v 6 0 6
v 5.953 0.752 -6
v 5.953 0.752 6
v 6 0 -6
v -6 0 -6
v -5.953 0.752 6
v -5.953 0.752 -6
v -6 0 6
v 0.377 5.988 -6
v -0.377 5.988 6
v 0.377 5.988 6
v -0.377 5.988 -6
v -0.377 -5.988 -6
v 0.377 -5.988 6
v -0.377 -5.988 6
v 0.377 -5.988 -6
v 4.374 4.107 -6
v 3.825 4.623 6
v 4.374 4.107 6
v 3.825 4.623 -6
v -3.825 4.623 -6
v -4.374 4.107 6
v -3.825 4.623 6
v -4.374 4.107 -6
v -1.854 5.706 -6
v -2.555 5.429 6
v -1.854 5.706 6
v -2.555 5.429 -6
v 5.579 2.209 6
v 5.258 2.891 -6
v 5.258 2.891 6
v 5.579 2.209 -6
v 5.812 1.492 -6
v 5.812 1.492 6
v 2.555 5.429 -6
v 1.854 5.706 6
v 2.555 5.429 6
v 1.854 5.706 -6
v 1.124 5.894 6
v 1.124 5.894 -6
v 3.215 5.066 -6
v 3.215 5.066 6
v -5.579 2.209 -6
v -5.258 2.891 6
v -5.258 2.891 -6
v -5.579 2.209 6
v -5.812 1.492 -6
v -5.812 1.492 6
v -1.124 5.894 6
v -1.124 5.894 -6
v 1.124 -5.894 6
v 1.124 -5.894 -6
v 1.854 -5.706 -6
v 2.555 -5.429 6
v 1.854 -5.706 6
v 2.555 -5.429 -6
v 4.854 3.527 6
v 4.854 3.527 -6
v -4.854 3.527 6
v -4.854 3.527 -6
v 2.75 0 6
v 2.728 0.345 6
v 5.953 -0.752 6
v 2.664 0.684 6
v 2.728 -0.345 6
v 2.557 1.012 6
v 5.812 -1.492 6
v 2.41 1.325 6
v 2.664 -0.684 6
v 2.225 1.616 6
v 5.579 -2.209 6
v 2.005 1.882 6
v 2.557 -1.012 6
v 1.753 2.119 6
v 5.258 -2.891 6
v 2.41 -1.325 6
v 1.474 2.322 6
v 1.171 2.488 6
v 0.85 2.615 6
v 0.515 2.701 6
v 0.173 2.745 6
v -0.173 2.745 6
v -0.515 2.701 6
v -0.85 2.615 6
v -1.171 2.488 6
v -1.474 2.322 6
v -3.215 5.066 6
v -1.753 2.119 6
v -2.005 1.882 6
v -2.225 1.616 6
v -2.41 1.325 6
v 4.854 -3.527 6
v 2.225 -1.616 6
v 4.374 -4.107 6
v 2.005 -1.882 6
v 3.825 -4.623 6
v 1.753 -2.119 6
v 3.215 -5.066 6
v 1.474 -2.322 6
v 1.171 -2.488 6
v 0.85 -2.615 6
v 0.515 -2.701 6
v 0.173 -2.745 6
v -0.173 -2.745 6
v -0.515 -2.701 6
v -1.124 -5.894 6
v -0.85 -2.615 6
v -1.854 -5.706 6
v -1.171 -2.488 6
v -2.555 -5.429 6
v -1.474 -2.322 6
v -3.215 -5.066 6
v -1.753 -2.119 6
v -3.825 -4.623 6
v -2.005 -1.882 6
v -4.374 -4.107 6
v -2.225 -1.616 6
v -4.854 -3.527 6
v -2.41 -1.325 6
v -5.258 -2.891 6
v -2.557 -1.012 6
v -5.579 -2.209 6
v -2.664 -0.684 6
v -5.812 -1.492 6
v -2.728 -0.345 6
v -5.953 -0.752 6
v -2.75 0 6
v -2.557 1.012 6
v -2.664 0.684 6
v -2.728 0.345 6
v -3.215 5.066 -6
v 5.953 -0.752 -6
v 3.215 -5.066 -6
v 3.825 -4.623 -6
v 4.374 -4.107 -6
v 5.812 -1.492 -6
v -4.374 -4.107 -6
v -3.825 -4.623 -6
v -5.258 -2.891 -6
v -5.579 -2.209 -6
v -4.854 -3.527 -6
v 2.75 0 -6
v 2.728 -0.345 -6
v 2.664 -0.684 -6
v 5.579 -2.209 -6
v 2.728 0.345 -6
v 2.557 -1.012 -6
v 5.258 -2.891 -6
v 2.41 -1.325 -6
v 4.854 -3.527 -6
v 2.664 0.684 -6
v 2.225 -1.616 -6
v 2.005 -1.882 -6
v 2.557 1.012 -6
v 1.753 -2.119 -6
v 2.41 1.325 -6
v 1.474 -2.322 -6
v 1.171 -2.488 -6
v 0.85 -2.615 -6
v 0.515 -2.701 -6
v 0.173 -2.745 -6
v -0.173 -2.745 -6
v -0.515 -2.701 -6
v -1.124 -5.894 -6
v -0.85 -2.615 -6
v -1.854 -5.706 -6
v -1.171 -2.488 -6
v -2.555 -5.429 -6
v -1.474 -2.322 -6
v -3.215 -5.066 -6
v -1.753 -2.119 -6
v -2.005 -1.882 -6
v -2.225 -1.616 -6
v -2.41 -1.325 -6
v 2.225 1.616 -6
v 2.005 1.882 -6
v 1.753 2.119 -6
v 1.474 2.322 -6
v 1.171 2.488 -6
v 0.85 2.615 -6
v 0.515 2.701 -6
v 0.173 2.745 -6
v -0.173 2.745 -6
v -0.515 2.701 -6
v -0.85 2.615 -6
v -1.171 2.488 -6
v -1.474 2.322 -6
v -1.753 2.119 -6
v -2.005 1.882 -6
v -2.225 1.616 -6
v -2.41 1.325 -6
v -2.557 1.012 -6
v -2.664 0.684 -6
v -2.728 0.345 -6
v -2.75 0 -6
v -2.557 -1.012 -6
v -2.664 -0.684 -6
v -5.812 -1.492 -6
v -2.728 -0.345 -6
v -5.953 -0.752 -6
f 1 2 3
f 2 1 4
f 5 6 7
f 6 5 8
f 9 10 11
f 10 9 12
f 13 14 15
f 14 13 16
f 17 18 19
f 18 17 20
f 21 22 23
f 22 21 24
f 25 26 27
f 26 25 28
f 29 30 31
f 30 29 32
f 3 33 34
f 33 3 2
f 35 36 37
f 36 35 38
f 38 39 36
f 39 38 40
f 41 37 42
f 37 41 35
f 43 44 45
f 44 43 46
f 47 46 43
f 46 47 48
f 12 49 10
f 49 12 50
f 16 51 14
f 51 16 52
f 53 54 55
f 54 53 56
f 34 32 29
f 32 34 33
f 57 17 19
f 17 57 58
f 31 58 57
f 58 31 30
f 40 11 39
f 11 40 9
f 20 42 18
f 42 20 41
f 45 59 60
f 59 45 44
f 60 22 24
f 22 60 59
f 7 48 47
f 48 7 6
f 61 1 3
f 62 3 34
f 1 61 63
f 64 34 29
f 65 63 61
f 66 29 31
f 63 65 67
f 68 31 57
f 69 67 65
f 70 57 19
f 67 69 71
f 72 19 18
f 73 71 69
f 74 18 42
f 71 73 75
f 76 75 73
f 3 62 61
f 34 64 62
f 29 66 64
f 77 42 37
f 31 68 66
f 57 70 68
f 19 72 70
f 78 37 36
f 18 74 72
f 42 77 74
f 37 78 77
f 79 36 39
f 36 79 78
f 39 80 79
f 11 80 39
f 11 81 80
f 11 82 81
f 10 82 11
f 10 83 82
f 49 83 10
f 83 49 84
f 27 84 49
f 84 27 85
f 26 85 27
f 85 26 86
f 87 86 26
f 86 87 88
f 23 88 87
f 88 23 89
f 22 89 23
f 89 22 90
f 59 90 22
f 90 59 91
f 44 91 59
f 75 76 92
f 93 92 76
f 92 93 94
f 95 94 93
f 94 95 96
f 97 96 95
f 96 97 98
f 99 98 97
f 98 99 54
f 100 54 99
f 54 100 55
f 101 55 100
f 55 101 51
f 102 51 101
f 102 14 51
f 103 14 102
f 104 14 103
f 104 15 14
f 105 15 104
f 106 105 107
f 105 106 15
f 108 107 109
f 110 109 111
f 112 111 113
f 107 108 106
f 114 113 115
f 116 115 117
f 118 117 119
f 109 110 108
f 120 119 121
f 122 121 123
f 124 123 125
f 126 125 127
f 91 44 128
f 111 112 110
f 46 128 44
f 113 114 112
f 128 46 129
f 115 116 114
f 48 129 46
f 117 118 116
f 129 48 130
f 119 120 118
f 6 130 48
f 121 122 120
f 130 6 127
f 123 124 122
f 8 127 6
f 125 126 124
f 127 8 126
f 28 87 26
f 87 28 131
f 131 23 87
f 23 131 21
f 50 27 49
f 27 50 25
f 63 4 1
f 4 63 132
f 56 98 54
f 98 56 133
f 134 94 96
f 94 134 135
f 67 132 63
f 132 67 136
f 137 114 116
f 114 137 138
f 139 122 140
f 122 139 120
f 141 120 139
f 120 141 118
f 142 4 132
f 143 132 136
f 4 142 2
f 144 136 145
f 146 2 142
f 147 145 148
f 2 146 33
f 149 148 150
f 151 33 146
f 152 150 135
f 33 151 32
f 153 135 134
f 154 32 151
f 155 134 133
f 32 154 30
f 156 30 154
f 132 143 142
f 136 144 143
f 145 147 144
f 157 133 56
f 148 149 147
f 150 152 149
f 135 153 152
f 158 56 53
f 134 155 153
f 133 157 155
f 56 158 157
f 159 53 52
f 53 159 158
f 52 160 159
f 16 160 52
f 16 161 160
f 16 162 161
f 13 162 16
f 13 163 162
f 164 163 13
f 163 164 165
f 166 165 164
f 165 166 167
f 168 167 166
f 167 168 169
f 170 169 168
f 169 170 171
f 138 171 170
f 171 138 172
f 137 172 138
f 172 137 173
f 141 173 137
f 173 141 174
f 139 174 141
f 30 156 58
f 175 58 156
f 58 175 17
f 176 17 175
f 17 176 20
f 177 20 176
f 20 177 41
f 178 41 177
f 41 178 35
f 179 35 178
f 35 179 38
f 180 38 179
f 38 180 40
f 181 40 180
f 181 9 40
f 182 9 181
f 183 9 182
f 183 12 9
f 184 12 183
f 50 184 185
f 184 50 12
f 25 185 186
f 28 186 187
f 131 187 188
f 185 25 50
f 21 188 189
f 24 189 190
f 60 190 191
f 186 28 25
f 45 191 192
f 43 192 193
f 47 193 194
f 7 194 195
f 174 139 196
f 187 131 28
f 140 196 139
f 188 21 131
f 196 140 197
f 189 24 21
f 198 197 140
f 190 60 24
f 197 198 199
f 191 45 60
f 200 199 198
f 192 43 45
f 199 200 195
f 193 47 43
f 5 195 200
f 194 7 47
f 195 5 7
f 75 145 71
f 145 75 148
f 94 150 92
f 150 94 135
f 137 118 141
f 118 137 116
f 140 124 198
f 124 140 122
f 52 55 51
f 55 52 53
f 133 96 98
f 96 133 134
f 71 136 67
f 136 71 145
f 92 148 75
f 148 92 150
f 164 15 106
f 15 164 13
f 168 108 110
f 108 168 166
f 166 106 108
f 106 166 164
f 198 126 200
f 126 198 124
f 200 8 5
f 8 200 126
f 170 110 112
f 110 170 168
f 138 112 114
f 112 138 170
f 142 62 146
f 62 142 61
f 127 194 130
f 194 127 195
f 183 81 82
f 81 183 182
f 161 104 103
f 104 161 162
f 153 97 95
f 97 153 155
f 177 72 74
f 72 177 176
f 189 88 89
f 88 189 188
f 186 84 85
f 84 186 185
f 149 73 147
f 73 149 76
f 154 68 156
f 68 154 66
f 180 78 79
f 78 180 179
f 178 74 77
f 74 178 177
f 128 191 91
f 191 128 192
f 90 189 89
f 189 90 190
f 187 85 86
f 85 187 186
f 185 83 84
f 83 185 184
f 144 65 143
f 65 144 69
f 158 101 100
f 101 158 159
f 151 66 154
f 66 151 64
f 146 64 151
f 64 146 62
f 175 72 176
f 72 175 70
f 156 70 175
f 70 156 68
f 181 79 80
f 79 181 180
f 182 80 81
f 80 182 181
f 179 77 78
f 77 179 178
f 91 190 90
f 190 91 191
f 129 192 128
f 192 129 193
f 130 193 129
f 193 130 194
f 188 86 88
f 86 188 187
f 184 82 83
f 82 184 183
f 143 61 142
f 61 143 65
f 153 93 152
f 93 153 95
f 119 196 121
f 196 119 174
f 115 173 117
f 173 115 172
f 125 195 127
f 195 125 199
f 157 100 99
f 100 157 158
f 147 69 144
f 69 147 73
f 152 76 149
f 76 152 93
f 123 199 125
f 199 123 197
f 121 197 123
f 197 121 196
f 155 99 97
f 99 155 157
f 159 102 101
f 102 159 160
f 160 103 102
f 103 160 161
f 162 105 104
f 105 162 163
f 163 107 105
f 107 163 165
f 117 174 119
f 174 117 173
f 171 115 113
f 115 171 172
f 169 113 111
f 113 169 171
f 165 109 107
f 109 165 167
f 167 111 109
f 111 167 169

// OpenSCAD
$fn = 50;


difference() {
	union() {
		translate(v = [0, 0, -6.0000000000]) {
			cylinder(h = 12, r = 6.0000000000);
		}
	}
	union() {
		translate(v = [0, 0, -100.0000000000]) {
			cylinder(h = 200, r = 2.7500000000);
		}
	}
}
